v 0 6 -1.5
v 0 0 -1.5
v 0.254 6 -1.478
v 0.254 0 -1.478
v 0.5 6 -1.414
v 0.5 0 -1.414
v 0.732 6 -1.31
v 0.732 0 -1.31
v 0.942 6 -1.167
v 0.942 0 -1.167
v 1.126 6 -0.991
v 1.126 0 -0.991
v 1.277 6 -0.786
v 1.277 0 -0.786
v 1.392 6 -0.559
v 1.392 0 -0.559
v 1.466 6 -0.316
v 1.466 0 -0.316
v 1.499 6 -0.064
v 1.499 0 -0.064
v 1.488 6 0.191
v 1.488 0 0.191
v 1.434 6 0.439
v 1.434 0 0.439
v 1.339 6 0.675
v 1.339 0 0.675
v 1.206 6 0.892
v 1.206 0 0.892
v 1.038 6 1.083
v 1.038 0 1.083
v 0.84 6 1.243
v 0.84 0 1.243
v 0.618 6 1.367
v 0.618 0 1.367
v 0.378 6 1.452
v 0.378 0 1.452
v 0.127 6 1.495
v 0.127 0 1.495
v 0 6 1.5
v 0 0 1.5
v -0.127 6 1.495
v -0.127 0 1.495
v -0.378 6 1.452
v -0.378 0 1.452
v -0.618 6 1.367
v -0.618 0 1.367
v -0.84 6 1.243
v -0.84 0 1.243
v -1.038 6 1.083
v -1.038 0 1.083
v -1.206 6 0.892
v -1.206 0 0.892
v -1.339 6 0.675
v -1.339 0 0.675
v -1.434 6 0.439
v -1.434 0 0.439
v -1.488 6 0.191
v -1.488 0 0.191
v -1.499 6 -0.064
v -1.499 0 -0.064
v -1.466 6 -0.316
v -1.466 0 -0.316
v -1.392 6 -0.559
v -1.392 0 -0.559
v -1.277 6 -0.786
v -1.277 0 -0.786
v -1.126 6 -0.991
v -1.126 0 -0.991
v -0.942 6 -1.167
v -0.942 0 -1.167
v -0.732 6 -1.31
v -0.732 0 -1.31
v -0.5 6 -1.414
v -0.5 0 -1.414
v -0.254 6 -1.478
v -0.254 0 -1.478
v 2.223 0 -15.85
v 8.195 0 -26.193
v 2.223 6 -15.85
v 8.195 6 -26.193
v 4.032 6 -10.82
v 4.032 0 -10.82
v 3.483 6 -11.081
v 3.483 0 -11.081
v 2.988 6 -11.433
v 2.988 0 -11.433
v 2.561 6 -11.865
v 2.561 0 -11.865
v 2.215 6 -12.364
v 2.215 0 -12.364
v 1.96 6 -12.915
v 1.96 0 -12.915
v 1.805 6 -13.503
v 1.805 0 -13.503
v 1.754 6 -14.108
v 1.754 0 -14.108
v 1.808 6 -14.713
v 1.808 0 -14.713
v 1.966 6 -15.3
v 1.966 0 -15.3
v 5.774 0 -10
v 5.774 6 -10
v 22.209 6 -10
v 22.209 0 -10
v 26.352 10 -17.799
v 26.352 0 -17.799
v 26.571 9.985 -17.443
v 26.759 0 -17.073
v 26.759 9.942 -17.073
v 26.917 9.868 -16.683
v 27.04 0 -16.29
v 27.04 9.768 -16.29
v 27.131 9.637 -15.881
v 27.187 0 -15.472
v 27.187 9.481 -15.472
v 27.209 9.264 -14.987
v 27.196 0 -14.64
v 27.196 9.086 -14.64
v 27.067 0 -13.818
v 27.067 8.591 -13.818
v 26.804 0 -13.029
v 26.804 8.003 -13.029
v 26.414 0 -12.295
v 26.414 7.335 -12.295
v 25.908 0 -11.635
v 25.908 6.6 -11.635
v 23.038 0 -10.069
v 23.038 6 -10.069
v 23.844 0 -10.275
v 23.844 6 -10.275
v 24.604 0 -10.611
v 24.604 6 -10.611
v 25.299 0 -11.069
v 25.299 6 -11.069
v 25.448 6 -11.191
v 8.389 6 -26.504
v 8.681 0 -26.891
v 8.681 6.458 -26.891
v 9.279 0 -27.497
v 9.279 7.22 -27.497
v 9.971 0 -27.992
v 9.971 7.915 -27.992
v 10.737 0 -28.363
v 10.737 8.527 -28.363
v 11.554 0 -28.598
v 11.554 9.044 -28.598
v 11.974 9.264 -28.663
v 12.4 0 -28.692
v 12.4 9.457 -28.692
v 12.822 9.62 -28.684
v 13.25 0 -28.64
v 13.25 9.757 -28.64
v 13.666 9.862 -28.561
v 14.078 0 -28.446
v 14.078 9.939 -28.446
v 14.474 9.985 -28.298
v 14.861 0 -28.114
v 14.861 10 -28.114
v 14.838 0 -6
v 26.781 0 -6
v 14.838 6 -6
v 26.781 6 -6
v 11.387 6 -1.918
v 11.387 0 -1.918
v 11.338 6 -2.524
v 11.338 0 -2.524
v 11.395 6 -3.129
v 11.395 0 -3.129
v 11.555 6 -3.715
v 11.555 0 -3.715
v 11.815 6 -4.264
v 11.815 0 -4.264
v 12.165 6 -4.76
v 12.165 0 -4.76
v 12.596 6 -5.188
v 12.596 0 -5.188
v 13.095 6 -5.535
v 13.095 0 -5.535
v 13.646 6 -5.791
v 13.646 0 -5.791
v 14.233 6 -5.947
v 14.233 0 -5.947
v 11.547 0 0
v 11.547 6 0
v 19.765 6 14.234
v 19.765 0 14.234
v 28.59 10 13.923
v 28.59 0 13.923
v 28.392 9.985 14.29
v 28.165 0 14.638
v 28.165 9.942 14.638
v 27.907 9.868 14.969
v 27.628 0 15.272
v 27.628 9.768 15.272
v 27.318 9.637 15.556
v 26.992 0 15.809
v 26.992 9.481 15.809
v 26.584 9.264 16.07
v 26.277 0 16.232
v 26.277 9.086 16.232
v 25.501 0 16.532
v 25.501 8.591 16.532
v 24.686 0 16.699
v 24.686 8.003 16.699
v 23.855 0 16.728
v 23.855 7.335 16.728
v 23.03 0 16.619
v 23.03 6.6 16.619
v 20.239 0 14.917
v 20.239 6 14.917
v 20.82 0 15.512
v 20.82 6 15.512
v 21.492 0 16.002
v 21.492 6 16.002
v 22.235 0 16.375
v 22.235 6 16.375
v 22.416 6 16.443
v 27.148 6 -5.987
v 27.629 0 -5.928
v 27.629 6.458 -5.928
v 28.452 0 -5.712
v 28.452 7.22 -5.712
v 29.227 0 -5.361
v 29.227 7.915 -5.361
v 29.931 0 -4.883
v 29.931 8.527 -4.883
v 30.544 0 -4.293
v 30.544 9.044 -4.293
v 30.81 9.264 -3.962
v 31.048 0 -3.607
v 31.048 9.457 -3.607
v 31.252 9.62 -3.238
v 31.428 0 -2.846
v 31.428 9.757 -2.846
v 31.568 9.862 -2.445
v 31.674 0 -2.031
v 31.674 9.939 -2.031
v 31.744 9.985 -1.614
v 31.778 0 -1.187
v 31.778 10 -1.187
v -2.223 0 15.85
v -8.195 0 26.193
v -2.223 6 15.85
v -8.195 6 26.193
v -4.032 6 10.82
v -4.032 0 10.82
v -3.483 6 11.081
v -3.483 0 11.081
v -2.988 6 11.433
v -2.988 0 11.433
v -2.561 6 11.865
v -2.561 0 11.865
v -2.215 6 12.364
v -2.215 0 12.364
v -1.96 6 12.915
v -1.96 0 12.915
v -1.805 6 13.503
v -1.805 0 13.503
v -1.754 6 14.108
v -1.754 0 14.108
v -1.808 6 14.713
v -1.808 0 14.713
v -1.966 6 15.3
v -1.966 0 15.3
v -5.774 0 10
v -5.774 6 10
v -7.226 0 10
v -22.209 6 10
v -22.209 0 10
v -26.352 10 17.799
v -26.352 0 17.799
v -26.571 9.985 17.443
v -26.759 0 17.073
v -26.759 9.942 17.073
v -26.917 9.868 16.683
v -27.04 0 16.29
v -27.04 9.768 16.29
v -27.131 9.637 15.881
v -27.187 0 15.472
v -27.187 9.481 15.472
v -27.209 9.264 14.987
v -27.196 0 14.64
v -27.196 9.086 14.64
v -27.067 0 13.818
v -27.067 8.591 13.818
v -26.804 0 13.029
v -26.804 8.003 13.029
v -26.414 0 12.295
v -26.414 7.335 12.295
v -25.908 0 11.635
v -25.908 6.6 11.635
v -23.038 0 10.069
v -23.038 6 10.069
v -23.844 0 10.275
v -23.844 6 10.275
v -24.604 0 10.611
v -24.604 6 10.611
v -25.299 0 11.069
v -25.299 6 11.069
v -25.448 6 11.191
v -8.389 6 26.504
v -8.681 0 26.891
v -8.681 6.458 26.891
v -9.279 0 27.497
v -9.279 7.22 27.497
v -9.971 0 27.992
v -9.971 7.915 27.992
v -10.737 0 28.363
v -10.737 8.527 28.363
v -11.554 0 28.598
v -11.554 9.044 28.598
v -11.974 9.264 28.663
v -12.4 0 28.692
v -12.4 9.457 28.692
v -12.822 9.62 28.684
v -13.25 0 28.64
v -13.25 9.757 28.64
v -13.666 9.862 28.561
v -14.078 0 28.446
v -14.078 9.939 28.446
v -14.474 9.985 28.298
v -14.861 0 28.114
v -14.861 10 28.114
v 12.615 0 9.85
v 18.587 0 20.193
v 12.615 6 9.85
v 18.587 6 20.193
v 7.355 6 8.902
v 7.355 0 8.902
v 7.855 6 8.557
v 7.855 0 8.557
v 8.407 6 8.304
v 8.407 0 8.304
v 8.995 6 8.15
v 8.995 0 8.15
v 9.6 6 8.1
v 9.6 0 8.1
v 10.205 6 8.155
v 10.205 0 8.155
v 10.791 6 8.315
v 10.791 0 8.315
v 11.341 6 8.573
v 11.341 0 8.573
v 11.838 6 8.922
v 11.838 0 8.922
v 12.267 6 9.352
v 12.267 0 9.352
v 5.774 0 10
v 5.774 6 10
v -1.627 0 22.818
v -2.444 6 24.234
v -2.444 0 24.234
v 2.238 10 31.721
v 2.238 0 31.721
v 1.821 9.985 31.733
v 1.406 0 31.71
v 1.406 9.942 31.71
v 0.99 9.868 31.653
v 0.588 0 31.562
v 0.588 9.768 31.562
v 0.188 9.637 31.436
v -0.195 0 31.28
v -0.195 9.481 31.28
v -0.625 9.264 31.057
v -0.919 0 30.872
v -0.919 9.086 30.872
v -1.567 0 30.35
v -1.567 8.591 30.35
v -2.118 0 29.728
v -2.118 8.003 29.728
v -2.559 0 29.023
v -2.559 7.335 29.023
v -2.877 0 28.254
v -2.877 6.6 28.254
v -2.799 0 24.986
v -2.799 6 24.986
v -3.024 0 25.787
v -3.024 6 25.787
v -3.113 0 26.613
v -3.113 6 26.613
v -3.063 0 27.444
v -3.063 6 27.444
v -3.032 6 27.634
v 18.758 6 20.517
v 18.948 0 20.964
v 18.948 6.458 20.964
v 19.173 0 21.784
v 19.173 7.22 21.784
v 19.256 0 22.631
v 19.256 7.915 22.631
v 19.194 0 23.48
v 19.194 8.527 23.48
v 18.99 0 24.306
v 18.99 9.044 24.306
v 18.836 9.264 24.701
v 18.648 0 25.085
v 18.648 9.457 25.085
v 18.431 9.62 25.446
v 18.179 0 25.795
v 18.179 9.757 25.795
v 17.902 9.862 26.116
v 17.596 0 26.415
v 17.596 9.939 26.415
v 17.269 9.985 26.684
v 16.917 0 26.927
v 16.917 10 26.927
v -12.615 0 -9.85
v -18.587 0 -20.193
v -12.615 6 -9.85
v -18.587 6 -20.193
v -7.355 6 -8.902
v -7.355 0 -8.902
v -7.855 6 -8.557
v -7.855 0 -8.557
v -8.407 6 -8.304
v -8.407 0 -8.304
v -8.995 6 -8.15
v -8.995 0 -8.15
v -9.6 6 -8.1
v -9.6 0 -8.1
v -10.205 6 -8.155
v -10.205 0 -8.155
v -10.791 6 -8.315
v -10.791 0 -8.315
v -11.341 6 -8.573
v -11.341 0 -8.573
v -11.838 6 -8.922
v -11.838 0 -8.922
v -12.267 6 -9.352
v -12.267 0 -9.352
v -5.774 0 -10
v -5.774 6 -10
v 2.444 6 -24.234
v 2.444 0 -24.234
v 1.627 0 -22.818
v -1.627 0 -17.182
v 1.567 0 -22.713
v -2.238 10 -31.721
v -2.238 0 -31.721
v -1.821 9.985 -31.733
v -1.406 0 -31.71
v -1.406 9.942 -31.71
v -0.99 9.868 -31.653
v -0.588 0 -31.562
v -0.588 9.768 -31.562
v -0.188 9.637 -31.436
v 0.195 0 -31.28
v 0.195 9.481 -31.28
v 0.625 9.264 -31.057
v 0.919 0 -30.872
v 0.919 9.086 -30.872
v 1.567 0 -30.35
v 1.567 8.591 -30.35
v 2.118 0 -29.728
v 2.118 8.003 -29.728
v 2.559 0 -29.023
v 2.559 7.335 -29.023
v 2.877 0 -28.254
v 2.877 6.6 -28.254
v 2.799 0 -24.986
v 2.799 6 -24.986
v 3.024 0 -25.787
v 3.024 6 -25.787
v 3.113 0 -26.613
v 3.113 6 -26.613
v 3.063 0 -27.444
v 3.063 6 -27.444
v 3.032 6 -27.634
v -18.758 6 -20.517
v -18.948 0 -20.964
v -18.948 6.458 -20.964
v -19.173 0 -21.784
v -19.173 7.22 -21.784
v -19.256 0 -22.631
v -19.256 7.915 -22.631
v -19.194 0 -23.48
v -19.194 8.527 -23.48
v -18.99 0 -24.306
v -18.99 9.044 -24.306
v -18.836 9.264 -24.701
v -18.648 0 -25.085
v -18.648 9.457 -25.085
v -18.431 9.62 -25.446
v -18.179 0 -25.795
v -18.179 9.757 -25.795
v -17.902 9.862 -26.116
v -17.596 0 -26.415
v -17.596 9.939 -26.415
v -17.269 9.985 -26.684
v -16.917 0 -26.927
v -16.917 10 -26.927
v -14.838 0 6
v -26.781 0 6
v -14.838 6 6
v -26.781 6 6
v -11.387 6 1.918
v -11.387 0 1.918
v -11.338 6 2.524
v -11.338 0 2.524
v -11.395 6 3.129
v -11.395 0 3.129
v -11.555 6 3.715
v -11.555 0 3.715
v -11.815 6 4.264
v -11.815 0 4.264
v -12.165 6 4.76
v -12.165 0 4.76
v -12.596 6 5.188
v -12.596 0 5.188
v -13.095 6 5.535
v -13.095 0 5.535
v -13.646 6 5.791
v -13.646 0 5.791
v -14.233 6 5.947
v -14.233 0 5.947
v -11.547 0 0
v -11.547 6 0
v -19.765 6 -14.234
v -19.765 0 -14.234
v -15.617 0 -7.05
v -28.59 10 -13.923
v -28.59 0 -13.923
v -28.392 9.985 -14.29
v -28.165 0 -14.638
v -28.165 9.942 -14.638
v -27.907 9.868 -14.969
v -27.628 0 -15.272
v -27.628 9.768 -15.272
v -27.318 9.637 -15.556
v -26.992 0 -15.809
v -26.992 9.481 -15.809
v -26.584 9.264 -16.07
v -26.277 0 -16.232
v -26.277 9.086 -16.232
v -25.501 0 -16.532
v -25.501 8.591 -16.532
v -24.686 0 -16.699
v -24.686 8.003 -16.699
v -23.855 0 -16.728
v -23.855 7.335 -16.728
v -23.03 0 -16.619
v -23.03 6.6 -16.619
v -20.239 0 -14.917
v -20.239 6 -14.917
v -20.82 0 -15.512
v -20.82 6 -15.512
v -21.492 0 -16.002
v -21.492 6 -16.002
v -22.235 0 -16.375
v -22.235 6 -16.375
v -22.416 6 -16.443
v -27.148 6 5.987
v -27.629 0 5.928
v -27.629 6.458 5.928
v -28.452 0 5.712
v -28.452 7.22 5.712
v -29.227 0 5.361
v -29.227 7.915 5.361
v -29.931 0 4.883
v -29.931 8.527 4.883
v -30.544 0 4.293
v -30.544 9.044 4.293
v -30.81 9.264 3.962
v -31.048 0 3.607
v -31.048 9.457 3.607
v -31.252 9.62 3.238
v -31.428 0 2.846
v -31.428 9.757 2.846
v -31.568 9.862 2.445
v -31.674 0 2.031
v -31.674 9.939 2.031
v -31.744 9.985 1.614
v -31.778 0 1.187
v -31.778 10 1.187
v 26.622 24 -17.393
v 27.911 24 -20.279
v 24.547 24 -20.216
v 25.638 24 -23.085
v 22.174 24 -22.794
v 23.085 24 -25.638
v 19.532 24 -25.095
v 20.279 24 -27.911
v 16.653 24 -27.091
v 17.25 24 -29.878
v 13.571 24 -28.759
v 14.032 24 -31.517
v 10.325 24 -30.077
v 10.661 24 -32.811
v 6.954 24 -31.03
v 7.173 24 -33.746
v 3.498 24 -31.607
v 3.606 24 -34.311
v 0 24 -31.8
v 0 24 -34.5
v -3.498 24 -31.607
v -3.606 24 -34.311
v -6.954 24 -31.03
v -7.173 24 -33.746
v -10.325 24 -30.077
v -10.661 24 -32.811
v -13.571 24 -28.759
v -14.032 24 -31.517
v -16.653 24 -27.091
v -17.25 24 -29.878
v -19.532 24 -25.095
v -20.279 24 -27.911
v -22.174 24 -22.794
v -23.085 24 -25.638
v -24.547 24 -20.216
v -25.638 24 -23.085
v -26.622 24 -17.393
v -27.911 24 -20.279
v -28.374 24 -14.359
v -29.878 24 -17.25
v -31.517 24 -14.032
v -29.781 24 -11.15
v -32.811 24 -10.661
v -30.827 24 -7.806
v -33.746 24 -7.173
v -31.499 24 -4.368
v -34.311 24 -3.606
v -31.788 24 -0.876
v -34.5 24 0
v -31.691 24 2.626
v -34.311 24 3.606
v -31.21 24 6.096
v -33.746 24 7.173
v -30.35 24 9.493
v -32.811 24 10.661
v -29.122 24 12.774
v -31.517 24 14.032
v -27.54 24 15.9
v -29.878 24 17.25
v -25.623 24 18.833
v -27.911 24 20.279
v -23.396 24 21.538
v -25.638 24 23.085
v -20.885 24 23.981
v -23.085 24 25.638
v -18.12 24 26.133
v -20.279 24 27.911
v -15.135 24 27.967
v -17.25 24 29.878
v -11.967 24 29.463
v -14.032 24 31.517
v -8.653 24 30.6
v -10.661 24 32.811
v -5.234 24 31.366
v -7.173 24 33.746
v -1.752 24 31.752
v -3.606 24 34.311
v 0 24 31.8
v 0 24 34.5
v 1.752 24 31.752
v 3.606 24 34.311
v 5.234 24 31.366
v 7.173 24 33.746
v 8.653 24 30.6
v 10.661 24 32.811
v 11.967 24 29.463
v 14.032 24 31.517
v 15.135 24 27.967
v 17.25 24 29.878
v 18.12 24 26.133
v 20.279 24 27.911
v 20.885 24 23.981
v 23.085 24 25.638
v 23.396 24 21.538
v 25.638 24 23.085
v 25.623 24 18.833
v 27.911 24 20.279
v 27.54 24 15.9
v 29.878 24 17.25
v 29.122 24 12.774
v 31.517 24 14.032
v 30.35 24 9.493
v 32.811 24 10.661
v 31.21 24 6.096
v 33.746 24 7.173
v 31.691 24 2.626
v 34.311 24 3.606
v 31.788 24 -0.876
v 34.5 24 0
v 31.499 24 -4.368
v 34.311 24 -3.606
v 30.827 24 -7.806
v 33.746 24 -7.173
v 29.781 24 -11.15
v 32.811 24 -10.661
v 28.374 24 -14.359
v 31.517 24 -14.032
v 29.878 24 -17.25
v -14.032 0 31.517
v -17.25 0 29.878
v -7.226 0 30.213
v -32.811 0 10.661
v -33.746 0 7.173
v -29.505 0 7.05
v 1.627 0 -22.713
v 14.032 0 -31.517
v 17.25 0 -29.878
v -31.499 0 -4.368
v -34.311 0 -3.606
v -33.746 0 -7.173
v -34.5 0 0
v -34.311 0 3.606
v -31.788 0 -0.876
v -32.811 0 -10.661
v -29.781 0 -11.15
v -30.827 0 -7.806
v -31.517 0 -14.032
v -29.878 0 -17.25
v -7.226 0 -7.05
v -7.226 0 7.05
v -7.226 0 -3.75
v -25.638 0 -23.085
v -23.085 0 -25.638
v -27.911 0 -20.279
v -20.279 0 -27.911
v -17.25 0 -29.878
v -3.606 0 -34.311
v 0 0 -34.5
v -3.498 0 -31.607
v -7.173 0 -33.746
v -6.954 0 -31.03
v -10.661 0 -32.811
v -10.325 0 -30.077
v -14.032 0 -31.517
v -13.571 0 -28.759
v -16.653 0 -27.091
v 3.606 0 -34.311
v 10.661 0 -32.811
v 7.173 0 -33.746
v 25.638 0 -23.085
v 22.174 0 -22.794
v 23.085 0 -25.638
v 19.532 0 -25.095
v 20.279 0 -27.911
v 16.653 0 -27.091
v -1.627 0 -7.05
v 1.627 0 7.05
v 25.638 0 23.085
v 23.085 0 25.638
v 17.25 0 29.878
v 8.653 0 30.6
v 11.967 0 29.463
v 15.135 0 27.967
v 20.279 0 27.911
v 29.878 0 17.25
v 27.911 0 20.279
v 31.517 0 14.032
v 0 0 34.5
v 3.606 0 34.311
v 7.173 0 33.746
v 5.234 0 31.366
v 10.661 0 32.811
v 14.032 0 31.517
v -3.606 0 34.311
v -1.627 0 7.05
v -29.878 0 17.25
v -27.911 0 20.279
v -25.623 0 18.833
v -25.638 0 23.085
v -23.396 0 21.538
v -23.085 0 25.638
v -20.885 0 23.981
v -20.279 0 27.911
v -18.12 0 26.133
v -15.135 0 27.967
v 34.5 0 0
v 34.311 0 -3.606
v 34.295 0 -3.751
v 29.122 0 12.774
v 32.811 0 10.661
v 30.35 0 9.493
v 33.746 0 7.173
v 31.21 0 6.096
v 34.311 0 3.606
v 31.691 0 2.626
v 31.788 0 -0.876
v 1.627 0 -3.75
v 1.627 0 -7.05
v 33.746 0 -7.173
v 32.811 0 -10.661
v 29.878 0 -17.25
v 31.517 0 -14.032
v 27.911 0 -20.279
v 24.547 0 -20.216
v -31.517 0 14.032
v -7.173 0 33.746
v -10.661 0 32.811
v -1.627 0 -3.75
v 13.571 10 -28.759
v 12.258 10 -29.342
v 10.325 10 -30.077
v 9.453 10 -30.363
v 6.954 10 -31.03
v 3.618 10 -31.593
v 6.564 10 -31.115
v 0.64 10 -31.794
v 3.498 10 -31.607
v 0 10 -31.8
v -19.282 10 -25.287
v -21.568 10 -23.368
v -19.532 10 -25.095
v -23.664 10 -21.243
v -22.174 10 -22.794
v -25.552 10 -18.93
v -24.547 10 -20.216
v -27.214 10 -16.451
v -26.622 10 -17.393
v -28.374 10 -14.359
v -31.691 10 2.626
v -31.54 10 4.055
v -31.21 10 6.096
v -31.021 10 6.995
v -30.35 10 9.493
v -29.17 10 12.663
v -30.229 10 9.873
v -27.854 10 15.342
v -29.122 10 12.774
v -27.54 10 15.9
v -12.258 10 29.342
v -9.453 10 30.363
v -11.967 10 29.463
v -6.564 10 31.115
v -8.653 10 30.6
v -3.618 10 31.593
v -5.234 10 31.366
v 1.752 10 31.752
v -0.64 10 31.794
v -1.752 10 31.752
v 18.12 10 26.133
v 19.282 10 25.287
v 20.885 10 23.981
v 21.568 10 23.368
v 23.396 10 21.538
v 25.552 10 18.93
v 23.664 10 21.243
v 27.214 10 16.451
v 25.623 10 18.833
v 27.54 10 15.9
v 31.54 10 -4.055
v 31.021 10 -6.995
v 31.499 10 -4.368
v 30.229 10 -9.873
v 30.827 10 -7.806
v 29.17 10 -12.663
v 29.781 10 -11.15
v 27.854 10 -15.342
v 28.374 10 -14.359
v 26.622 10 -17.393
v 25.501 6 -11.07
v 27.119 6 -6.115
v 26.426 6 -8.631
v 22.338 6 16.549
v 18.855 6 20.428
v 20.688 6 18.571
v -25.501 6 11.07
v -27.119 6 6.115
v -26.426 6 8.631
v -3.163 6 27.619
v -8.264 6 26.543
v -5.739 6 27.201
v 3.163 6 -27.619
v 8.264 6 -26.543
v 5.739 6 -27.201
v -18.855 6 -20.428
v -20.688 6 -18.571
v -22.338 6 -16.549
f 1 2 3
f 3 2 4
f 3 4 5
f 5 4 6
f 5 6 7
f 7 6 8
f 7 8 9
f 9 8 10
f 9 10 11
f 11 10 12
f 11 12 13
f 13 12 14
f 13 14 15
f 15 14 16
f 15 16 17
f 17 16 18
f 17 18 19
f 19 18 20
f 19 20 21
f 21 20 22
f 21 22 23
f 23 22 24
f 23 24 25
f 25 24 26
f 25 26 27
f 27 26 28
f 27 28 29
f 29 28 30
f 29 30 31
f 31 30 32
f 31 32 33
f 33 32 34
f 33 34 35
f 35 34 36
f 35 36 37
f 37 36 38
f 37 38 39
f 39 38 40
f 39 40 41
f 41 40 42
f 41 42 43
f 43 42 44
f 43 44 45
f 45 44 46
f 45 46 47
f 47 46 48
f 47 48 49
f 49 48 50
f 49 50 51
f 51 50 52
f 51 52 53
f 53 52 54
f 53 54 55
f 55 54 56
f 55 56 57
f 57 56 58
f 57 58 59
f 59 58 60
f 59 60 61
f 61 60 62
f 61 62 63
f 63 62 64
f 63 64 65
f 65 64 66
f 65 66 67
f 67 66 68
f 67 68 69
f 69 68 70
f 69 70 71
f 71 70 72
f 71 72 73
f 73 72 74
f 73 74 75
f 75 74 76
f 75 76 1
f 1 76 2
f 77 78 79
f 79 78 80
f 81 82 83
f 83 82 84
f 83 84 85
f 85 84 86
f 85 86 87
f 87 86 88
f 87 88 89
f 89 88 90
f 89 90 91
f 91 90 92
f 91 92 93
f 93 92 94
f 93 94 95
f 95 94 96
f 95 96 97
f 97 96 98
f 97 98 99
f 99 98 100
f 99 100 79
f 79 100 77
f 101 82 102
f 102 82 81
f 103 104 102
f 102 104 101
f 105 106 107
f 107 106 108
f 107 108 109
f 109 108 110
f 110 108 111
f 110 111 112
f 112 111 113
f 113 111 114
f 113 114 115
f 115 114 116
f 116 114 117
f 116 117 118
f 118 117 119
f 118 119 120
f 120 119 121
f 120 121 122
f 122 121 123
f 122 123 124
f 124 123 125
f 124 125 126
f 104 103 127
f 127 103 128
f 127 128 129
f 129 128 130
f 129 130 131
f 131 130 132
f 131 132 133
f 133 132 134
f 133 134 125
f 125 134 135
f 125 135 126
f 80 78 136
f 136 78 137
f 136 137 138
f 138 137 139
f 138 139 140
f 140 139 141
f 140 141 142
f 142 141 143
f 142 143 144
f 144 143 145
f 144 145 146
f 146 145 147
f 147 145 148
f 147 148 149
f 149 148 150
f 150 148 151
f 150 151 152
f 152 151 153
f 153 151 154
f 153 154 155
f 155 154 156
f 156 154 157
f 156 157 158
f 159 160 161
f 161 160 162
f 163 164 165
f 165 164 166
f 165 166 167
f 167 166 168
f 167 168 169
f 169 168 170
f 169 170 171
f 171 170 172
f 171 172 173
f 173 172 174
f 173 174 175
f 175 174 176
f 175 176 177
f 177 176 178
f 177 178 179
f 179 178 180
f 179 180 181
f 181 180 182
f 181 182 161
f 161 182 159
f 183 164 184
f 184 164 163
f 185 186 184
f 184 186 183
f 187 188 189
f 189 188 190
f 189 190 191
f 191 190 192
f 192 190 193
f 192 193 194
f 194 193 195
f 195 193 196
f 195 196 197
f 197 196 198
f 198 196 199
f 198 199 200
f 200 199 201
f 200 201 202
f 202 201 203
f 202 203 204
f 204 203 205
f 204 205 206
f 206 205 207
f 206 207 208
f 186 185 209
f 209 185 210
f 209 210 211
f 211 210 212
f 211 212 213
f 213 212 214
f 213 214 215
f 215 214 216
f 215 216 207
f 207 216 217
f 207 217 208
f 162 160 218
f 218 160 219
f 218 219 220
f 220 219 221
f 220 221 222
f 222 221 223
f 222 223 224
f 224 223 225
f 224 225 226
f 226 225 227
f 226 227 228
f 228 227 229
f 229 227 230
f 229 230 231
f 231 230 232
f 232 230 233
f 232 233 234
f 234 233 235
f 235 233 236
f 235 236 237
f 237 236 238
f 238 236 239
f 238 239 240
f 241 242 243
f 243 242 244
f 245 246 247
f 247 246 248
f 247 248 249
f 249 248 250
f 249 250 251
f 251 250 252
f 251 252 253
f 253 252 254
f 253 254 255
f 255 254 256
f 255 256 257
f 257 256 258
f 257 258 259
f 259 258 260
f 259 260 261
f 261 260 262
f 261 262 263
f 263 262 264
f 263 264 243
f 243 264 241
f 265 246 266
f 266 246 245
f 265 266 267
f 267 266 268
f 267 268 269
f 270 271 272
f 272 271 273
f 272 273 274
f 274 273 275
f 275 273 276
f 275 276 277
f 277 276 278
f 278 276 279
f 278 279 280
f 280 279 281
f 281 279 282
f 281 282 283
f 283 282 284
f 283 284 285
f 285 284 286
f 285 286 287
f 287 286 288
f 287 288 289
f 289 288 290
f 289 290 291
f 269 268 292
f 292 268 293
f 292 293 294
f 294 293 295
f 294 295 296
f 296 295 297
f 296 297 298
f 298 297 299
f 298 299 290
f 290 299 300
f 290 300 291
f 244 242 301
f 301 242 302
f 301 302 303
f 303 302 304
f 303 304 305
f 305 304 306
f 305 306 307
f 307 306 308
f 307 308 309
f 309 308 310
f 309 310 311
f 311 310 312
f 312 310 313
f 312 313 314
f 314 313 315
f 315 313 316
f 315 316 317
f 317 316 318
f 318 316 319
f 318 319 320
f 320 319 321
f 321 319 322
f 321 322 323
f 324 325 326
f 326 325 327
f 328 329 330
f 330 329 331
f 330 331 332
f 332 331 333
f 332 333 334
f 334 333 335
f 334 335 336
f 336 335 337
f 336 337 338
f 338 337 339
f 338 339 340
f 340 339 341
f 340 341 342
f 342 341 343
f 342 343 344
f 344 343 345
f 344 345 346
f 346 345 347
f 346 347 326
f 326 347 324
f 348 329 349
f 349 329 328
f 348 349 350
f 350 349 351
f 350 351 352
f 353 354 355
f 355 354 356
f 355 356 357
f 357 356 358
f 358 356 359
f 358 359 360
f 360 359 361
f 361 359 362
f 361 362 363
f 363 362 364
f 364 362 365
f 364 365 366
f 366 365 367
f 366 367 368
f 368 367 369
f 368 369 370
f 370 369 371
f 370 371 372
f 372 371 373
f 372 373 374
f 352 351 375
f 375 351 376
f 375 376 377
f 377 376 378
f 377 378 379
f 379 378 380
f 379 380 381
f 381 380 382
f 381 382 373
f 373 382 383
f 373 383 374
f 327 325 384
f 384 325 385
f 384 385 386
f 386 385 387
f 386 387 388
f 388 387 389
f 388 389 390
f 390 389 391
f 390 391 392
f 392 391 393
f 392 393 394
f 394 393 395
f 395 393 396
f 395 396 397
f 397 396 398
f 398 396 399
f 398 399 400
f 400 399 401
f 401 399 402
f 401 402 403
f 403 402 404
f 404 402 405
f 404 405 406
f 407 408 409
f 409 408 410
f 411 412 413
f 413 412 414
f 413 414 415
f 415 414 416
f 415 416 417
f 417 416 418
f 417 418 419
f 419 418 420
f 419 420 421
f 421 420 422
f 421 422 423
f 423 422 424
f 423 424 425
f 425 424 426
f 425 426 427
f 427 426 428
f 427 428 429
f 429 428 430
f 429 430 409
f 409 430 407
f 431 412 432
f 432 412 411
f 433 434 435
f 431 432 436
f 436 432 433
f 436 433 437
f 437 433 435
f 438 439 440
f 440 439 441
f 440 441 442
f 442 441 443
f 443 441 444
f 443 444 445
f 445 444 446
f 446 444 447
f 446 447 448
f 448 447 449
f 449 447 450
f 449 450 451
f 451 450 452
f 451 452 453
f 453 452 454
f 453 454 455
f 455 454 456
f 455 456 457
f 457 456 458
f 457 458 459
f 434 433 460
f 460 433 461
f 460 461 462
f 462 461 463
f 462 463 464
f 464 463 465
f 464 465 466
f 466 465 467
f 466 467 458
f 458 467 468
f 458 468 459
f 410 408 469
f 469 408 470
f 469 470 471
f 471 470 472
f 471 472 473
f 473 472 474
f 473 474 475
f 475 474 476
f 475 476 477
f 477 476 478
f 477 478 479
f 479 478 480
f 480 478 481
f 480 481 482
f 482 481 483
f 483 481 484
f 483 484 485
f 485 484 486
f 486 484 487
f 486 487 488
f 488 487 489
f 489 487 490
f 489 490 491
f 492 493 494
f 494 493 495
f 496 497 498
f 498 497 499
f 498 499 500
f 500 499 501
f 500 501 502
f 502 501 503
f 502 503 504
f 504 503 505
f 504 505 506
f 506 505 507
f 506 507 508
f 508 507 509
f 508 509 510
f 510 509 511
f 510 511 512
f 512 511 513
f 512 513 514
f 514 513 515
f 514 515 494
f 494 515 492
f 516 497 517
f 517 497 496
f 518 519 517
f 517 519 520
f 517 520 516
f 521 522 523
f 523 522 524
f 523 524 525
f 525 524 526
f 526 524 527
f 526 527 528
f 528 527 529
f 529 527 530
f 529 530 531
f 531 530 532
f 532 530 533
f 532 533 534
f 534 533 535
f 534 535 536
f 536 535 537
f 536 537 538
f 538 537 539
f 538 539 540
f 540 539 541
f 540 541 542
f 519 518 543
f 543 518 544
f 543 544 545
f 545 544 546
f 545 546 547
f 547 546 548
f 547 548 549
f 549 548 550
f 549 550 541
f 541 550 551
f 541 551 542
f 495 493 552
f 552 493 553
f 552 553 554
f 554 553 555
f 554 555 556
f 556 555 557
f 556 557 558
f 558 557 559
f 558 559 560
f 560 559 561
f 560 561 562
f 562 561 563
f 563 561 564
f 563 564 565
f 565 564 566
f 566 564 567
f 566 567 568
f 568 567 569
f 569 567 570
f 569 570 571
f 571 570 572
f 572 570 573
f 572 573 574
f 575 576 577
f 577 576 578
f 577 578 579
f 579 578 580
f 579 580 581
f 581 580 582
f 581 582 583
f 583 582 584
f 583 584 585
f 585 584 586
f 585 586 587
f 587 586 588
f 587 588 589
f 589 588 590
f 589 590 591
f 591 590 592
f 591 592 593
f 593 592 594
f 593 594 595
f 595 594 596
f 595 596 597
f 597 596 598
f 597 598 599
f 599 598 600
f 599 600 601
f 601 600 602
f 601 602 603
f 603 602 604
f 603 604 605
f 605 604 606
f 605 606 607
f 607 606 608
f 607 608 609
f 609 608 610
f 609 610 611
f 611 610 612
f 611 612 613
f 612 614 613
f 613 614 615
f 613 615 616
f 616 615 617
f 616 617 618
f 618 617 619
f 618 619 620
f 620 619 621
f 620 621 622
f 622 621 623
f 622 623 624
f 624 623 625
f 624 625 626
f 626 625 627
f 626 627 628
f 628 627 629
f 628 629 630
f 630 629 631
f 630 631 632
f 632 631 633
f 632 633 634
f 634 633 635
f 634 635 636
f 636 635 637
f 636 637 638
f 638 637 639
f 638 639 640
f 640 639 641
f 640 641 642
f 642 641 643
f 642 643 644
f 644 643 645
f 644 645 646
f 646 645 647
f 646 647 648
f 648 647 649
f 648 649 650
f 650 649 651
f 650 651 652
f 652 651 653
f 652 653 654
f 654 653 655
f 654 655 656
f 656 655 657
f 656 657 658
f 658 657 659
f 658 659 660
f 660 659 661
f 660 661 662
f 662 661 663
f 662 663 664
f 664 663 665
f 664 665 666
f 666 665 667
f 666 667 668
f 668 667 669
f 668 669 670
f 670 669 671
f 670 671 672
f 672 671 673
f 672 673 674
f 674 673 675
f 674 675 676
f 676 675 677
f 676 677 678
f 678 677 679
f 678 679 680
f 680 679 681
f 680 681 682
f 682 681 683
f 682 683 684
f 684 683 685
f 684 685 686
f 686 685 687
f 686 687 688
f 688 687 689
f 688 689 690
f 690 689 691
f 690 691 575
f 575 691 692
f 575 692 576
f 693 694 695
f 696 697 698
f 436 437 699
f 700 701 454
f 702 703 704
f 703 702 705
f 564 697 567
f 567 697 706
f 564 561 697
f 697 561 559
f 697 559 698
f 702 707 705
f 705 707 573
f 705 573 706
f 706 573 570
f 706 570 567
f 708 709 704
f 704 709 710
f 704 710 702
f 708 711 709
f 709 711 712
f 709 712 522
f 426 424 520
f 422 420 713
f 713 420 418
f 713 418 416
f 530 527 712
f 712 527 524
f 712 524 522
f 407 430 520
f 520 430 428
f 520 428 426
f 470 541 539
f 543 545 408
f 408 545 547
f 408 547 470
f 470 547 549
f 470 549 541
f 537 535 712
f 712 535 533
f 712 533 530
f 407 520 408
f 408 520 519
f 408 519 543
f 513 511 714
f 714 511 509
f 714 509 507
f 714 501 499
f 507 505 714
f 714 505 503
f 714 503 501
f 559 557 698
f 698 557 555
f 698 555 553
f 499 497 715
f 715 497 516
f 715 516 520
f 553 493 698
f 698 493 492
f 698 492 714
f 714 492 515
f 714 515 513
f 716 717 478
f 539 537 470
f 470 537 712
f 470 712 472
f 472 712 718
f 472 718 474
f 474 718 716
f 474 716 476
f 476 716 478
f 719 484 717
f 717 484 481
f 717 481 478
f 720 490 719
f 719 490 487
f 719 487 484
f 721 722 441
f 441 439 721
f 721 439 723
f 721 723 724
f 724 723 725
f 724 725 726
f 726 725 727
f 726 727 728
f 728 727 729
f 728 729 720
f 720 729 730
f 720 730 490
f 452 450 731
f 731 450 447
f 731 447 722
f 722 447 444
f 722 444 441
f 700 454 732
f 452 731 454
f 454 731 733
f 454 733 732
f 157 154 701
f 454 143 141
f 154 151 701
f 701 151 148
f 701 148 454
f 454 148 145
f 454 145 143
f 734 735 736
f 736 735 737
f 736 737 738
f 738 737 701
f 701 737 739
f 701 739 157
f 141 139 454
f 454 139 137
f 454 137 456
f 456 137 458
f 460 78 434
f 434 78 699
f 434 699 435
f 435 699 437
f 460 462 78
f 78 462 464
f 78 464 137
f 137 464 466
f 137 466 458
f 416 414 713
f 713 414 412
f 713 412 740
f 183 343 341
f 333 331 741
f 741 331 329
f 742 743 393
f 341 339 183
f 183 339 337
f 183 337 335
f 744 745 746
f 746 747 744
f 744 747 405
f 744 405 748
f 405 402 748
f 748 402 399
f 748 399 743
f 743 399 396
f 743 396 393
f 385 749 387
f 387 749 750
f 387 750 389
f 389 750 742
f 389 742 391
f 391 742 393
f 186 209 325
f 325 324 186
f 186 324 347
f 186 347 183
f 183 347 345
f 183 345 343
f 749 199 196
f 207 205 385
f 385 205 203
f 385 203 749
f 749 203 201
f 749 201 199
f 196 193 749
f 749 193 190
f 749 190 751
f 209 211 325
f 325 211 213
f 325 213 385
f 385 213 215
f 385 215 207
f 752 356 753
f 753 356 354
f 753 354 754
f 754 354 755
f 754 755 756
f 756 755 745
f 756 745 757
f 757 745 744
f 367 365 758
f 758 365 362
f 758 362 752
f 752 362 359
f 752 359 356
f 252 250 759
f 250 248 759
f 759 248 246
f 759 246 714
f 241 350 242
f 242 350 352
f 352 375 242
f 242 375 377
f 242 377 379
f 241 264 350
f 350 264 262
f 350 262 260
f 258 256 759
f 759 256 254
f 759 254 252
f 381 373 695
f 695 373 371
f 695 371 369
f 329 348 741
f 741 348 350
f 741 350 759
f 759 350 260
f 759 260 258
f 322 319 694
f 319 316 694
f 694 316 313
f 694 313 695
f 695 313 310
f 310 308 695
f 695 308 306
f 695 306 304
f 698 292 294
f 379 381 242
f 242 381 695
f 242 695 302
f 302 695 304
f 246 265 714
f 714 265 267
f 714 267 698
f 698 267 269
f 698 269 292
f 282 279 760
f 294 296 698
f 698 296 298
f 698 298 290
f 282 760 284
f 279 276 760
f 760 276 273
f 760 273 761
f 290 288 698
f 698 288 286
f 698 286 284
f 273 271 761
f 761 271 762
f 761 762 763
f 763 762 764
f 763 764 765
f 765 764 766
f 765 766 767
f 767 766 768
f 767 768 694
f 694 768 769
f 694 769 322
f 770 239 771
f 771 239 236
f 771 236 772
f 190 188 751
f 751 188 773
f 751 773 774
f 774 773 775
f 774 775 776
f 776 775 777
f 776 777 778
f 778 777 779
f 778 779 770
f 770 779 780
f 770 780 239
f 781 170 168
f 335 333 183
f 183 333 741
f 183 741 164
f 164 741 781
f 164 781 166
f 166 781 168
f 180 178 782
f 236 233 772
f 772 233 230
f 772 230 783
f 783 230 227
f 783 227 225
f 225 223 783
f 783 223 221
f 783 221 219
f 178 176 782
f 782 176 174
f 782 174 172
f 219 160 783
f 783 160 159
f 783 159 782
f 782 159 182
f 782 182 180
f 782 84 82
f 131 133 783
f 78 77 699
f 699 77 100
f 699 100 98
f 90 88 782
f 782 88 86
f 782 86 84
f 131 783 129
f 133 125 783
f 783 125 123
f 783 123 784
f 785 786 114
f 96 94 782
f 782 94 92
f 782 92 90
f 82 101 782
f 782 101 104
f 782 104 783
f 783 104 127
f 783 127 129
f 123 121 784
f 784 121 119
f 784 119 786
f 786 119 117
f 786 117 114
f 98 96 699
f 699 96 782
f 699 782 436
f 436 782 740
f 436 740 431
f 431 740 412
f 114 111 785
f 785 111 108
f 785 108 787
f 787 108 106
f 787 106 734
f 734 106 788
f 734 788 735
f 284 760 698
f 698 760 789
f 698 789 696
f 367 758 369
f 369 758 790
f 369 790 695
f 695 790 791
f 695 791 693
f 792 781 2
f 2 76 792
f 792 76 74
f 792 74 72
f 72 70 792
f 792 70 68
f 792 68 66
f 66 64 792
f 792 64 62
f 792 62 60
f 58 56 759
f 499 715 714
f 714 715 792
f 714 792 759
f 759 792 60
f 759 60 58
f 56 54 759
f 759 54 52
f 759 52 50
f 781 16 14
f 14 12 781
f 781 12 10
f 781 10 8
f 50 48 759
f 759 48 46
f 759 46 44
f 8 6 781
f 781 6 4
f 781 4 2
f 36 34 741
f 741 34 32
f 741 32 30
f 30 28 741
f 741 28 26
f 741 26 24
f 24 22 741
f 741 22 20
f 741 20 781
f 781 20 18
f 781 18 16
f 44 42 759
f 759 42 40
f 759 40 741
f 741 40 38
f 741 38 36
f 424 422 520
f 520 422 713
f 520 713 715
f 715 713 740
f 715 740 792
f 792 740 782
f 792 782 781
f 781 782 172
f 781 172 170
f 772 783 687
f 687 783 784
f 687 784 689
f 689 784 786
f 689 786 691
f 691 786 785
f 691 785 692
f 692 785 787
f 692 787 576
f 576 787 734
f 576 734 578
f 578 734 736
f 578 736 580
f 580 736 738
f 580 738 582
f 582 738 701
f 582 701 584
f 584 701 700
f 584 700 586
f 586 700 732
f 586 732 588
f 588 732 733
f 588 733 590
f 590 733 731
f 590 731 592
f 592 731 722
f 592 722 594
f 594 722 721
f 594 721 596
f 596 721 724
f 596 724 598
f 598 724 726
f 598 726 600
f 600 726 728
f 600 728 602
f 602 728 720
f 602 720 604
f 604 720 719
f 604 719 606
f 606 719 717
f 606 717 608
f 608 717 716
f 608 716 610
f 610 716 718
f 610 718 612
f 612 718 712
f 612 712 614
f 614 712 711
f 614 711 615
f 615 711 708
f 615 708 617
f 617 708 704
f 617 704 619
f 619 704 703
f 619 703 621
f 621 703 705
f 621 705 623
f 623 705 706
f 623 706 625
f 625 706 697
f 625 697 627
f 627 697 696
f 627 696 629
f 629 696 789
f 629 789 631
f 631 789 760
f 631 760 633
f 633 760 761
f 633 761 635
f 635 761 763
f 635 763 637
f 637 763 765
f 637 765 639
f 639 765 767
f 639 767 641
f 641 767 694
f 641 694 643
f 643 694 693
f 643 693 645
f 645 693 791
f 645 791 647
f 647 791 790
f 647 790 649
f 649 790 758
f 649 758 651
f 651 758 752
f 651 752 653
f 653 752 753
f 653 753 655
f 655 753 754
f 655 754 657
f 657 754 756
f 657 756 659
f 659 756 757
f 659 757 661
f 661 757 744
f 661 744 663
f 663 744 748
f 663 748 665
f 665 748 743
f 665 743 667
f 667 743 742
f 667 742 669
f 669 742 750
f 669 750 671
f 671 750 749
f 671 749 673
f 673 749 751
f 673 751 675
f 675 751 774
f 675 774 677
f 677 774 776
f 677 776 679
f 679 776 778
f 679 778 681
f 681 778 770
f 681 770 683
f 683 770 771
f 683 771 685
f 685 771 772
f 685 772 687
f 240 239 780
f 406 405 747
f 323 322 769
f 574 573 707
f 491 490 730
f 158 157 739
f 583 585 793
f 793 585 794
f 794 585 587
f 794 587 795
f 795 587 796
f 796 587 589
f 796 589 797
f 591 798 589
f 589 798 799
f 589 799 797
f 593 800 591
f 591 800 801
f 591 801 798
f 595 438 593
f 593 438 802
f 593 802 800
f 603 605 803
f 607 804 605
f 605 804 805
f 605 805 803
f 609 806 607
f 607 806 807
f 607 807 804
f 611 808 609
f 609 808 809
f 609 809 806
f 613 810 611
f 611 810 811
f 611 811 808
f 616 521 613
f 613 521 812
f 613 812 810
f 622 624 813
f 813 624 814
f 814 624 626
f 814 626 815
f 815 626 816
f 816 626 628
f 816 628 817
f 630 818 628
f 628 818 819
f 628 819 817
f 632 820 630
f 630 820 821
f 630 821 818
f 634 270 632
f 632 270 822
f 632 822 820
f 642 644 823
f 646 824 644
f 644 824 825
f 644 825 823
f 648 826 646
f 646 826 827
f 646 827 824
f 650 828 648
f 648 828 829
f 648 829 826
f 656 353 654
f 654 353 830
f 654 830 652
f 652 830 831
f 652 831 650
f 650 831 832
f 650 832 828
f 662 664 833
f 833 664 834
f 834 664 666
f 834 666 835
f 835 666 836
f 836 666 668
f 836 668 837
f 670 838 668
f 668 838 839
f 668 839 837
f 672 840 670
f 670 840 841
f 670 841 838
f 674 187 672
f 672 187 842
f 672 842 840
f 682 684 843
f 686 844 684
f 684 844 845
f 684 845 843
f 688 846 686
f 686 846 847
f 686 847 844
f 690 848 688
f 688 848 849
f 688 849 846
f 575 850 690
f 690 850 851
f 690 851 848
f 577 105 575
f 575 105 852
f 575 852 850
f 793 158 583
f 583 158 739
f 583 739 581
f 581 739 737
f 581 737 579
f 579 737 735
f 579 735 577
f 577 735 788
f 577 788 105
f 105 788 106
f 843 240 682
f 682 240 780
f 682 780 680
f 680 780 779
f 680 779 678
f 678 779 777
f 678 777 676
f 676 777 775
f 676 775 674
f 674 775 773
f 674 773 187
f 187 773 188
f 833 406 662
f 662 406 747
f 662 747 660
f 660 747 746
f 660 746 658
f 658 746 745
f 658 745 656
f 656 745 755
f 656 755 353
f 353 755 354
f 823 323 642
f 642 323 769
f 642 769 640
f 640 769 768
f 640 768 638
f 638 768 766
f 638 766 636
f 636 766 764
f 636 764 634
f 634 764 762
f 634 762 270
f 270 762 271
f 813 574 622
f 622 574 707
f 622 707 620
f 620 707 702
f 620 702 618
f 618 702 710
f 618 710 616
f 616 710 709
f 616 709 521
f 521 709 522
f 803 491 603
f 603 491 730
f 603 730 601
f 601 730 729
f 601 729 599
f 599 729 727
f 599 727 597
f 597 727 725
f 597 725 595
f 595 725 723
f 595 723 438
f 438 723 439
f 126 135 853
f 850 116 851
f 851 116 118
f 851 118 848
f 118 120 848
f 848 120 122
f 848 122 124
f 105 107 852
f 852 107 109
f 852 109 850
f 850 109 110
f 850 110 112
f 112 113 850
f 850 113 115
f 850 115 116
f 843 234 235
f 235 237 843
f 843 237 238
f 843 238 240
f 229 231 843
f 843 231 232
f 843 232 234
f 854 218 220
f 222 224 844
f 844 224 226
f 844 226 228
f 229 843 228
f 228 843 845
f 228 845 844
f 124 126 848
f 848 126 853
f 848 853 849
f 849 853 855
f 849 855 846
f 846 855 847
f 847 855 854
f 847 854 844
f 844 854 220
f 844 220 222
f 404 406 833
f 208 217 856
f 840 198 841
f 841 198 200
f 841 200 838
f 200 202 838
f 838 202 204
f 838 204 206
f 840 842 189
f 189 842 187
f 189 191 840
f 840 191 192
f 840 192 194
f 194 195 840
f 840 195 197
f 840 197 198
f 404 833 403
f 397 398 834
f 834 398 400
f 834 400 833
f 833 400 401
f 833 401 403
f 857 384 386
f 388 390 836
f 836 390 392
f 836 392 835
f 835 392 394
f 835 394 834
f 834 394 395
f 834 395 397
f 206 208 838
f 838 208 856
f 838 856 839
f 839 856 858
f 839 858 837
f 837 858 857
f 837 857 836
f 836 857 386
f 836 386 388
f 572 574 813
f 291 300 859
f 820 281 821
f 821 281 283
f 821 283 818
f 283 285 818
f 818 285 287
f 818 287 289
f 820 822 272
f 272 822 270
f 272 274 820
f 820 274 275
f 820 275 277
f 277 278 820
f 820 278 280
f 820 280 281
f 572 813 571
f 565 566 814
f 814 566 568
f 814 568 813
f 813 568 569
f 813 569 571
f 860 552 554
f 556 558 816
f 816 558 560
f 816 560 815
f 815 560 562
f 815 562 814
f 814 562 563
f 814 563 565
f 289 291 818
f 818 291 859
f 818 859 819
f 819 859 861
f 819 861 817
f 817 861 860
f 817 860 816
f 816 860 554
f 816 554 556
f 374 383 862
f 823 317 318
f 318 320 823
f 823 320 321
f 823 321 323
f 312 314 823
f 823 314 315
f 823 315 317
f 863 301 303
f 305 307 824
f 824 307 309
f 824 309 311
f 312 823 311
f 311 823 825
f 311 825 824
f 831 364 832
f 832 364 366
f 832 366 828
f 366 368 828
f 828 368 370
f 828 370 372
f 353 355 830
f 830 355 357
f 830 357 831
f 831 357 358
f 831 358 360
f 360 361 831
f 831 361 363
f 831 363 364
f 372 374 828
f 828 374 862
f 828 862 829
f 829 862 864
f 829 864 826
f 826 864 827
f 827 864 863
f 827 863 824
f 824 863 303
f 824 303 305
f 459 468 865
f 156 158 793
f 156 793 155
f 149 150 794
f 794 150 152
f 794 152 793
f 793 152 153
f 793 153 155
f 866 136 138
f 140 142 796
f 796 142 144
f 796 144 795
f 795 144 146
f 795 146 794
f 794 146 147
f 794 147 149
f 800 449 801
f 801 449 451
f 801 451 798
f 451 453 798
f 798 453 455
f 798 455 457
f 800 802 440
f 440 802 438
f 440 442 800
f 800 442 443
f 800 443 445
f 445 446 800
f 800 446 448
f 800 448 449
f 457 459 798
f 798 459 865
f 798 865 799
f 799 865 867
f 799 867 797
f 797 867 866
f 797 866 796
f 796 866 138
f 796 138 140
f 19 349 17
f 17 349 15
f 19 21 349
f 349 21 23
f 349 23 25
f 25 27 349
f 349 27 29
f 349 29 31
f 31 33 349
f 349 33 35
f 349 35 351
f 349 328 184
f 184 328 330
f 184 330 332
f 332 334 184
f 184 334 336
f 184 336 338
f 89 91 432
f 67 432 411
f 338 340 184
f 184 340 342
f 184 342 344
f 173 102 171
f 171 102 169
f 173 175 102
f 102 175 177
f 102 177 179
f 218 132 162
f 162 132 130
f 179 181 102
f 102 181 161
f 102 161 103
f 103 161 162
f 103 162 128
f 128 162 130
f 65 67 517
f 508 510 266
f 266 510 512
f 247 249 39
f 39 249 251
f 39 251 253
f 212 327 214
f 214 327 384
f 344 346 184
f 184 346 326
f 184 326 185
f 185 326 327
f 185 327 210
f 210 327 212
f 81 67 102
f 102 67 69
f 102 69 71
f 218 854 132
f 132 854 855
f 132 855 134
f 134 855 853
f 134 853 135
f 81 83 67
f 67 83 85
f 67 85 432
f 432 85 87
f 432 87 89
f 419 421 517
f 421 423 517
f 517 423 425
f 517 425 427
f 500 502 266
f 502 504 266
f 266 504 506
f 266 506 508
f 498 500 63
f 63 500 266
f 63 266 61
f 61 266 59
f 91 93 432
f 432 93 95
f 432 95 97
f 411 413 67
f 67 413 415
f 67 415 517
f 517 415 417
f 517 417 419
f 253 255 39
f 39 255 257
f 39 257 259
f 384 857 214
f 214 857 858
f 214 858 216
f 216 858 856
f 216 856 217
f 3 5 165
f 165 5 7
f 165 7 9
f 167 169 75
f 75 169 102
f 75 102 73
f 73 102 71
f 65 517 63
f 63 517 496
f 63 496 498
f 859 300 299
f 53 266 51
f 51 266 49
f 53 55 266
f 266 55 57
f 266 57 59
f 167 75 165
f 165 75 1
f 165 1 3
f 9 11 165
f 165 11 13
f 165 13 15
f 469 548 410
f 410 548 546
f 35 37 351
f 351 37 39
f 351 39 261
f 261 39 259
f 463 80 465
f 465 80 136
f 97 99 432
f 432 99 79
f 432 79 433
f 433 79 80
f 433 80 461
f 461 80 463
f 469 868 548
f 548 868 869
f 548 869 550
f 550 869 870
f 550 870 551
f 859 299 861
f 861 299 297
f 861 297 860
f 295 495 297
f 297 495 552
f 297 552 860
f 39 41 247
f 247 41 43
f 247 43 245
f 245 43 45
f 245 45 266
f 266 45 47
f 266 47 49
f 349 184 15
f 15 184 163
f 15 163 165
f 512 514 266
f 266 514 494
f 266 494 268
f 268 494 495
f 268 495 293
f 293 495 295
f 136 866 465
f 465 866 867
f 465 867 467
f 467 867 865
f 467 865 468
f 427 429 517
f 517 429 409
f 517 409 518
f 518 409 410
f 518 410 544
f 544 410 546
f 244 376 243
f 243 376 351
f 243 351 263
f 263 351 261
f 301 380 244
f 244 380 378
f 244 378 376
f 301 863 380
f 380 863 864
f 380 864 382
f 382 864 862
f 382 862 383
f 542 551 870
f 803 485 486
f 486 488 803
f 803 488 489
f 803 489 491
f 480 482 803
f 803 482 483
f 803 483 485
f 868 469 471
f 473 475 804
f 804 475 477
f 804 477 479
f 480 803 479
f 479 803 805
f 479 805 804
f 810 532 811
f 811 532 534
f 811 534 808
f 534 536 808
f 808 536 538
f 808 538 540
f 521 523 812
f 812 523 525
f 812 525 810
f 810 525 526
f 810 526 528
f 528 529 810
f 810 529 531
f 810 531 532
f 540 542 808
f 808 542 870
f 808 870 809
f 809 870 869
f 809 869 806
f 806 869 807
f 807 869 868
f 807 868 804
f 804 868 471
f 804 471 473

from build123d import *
from build123d.topology import SkipClean

# Parameters (mm, degrees)
SKETCH1_R           = 34.5
BOSS_EXTRUDE1_DEPTH = 24
SKETCH6_R           = 1.5
CUT_EXTRUDE6_DEPTH  = 24
CUT_EXTRUDE7_DEPTH  = 24
CIRPATTERN1_COUNT   = 6


with BuildPart() as part:
    # Sketch1 → Boss-Extrude1 (new body)
    with BuildSketch(Plane(origin=(0, 0, 0), x_dir=(1, 0, 0), z_dir=(0, 1, 0))):
        with Locations(Location((0, 0, 0), (0, 0, 270))):
            Circle(SKETCH1_R)
    extrude(amount=BOSS_EXTRUDE1_DEPTH)

    # Sketch6 → Cut-Extrude6 (cut)
    with BuildSketch(Plane(origin=(0, 0, 0), x_dir=(1, 0, 0), z_dir=(0, 1, 0))):
        with Locations(Location((0, 0, 0), (0, 0, 90))):
            Circle(SKETCH6_R)
    extrude(amount=CUT_EXTRUDE6_DEPTH, mode=Mode.SUBTRACT)

    # Sketch3 → Cut-Extrude7 (cut)
    with BuildSketch(Plane(origin=(0, 0, 0), x_dir=(1, 0, 0), z_dir=(0, 1, 0))):
        with BuildLine():
            ThreePointArc((4.03179755, 10.82025609), (4.919774713, 10.446489846), (5.773502692, 10))
            Line((5.773502692, 10), (22.209007182, 10))
            ThreePointArc((22.209007182, 10), (26.624465103, 12.65399673), (26.352478671, 17.798507463))
            ThreePointArc((26.352478671, 17.798507463), (21.242536942, 23.664205549), (14.861330114, 28.113713153))
            ThreePointArc((14.861330114, 28.113713153), (11.140652369, 28.497958465), (8.19451597, 26.193318003))
            Line((8.19451597, 26.193318003), (2.222782323, 15.849971917))
            ThreePointArc((2.222782323, 15.849971917), (1.960414336, 12.915429114), (4.03179755, 10.82025609))
        make_face()
    cut_extrude7 = extrude(amount=CUT_EXTRUDE7_DEPTH, mode=Mode.SUBTRACT)

    # CirPattern1: Cut-Extrude7 ×6 about axis
    cirpattern1_axis = Axis((0, 0, 0), (0, 1, 0))
    for i in range(1, CIRPATTERN1_COUNT):
        add(cut_extrude7.rotate(cirpattern1_axis, i * 360 / CIRPATTERN1_COUNT), mode=Mode.SUBTRACT)

    # Sketch14 → Revolve1 (revolve)
    with BuildSketch(Plane.XY):
        Polygon((32, 13), (32, 12), (34.5, 12), (34.5, 14), align=None)
    revolve1 = revolve(axis=Axis((0, 24, 0), (0, -1, 0)))

    # Mirror11: Revolve1 across plane
    add(revolve1.mirror(Plane.ZX.offset(12)))

    # Sketch15 → Cut-Revolve5 (revolve, cut)
    with SkipClean():  # the faces are left unmerged after this step: merging them gives an invalid solid
        with BuildSketch(Plane.XY, mode=Mode.PRIVATE) as cut_revolve5_sk:
            Polygon((1.5, 6), (1.5, 0), (0, 0), (0, 6), (0, 24), (31.8, 24), (31.8, 10), (27.8, 6), align=None)
        revolve(cut_revolve5_sk.sketch.rotate(Axis((0, 6, 0), (0, -1, 0)), 270), axis=Axis((0, 6, 0), (0, -1, 0)), mode=Mode.SUBTRACT)


solid = part.part
